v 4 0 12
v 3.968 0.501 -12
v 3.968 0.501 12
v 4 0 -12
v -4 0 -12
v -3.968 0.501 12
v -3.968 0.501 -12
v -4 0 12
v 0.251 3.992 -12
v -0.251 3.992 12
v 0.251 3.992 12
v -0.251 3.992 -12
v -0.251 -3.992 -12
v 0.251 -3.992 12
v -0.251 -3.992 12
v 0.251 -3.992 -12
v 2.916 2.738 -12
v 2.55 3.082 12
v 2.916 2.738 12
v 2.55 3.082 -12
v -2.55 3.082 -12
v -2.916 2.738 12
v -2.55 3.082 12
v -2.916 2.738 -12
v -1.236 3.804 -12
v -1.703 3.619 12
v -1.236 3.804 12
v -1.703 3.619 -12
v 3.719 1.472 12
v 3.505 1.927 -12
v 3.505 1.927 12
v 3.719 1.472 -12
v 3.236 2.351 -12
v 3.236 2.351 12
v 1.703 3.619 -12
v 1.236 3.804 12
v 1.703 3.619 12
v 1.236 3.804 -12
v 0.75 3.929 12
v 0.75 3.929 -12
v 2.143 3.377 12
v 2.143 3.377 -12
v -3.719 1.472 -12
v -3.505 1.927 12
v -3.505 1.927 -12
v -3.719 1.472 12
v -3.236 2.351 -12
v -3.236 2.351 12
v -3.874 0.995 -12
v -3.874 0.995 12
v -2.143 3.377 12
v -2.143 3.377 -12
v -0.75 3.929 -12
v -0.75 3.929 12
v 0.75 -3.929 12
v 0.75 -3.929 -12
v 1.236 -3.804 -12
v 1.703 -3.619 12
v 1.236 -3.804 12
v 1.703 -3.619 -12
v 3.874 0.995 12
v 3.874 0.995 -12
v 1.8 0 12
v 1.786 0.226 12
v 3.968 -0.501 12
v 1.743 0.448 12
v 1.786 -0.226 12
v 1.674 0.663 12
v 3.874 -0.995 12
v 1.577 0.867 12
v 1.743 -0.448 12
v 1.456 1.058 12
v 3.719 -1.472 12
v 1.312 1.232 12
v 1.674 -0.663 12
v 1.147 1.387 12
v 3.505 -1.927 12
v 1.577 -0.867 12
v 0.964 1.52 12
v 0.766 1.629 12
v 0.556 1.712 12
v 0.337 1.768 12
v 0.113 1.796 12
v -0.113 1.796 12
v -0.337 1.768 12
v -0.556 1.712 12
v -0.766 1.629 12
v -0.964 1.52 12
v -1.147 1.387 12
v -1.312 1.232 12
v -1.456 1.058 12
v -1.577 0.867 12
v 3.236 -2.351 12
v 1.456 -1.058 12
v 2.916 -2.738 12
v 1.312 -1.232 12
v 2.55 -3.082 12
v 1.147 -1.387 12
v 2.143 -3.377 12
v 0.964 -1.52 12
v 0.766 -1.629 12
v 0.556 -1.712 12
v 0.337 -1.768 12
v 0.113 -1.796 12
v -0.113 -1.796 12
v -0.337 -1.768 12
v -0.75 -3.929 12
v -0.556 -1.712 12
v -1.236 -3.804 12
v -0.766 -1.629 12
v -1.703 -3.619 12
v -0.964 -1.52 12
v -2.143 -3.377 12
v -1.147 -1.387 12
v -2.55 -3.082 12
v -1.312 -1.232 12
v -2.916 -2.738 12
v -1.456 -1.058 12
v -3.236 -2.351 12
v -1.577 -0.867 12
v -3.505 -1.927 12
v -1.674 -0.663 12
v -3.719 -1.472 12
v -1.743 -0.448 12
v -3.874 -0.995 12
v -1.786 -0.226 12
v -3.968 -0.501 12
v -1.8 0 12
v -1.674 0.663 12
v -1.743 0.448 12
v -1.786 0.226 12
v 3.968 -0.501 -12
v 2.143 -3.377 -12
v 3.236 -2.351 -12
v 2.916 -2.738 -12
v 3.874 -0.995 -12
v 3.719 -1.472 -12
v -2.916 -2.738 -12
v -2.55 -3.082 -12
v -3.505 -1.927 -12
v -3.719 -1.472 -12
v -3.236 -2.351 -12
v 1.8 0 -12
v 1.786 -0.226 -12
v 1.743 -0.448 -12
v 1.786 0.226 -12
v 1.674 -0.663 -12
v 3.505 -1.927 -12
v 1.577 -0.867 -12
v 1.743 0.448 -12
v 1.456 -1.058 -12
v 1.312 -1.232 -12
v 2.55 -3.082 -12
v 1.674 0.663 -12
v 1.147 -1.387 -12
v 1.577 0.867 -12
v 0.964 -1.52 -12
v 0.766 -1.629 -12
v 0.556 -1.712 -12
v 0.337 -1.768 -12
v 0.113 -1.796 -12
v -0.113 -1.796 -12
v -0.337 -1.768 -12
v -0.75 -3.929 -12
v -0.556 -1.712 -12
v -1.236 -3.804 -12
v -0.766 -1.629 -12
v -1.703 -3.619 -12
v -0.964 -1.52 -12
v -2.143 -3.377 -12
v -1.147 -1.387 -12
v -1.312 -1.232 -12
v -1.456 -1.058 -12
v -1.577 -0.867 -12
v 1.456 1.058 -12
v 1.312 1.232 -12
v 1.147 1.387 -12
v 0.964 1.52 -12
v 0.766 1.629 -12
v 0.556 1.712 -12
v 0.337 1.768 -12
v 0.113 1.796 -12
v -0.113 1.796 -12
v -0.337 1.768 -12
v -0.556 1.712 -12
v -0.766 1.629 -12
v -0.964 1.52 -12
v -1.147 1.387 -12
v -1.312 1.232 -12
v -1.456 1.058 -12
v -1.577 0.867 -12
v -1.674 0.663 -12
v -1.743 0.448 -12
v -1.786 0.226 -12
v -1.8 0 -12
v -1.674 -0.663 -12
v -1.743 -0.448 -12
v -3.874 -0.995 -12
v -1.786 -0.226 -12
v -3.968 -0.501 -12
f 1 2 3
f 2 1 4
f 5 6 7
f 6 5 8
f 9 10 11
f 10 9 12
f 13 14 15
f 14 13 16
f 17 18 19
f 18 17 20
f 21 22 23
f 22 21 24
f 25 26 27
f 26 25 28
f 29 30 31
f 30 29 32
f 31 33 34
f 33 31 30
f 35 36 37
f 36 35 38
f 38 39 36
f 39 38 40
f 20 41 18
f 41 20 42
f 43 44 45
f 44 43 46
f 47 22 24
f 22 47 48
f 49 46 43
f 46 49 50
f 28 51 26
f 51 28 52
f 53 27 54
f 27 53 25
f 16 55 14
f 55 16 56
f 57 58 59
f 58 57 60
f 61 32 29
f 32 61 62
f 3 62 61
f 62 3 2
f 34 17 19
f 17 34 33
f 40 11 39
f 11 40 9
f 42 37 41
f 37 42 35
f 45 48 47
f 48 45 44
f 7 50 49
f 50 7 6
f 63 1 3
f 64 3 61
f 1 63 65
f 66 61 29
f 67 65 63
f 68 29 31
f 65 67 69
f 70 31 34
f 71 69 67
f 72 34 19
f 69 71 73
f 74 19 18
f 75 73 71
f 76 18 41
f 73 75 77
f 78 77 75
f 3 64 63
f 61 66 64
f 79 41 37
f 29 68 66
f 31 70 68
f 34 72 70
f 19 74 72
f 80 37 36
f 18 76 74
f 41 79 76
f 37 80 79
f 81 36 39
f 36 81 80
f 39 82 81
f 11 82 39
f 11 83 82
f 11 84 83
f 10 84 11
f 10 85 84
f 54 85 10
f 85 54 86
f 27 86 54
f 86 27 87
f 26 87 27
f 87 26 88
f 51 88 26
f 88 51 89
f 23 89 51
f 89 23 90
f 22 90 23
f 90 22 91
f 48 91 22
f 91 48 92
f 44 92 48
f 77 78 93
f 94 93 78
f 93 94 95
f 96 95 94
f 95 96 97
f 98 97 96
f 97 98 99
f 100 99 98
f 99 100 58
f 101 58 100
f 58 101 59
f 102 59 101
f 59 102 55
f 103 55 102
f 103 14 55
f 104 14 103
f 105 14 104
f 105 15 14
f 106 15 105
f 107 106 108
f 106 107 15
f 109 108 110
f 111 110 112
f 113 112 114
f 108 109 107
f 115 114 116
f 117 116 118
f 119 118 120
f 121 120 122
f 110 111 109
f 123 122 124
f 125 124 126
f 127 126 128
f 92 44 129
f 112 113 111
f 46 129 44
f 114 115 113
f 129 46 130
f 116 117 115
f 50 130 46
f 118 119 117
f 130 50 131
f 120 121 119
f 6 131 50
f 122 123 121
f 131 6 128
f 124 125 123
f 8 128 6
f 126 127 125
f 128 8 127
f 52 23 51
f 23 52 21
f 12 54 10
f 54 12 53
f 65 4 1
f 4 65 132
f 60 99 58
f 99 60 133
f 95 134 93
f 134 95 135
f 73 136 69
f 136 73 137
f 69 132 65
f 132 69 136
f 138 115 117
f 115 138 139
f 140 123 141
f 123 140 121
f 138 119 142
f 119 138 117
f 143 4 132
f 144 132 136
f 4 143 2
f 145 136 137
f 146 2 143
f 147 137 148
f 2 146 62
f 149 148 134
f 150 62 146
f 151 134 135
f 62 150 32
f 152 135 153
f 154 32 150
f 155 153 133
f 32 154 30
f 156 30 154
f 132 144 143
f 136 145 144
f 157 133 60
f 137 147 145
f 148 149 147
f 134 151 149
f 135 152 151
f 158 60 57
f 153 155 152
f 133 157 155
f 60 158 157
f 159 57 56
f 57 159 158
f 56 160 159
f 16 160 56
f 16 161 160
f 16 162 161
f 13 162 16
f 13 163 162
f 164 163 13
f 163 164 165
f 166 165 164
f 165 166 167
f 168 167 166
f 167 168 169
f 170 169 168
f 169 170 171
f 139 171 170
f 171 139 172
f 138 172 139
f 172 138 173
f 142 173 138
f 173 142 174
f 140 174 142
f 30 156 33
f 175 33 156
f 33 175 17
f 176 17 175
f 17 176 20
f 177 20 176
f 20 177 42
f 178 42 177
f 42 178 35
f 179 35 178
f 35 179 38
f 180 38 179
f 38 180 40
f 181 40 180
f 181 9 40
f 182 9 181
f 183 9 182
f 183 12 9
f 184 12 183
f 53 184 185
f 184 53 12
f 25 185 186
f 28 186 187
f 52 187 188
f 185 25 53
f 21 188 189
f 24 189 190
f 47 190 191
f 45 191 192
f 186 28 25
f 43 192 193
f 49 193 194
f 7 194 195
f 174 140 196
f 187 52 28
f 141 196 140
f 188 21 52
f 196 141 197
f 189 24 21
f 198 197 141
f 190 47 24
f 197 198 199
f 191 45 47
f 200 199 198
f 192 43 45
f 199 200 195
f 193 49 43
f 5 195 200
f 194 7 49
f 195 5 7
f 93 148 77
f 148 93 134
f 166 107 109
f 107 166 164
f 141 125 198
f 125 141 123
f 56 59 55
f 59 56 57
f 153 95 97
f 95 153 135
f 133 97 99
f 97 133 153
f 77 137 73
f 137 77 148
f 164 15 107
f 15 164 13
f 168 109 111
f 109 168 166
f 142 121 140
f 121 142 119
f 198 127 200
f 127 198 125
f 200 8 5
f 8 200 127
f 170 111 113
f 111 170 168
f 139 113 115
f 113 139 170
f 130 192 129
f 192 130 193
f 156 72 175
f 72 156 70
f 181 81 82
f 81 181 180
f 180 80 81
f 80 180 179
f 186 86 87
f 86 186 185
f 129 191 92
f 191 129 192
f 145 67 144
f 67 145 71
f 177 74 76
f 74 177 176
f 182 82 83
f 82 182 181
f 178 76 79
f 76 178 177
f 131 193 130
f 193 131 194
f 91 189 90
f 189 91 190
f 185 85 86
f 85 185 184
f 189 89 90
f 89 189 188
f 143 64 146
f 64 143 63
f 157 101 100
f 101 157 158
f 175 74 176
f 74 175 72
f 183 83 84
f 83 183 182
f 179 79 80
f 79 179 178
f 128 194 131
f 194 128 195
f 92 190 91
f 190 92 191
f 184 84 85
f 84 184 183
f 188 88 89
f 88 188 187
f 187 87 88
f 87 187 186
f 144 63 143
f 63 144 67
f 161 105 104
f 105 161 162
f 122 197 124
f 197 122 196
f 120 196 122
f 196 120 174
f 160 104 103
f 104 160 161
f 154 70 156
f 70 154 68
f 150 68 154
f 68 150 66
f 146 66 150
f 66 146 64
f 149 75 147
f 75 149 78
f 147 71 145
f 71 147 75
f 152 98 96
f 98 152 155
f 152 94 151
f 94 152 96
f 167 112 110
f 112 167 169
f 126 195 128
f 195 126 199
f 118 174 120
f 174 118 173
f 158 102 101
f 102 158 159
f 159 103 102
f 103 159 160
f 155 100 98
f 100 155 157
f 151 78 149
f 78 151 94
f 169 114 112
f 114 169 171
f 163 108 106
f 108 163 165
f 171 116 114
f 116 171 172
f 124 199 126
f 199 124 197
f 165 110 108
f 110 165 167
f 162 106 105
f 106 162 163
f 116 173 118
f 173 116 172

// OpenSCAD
$fn = 50;


difference() {
	union() {
		translate(v = [0, 0, -12.0000000000]) {
			cylinder(h = 24, r = 4.0000000000);
		}
	}
	union() {
		translate(v = [0, 0, -100.0000000000]) {
			cylinder(h = 200, r = 1.8000000000);
		}
	}
}
